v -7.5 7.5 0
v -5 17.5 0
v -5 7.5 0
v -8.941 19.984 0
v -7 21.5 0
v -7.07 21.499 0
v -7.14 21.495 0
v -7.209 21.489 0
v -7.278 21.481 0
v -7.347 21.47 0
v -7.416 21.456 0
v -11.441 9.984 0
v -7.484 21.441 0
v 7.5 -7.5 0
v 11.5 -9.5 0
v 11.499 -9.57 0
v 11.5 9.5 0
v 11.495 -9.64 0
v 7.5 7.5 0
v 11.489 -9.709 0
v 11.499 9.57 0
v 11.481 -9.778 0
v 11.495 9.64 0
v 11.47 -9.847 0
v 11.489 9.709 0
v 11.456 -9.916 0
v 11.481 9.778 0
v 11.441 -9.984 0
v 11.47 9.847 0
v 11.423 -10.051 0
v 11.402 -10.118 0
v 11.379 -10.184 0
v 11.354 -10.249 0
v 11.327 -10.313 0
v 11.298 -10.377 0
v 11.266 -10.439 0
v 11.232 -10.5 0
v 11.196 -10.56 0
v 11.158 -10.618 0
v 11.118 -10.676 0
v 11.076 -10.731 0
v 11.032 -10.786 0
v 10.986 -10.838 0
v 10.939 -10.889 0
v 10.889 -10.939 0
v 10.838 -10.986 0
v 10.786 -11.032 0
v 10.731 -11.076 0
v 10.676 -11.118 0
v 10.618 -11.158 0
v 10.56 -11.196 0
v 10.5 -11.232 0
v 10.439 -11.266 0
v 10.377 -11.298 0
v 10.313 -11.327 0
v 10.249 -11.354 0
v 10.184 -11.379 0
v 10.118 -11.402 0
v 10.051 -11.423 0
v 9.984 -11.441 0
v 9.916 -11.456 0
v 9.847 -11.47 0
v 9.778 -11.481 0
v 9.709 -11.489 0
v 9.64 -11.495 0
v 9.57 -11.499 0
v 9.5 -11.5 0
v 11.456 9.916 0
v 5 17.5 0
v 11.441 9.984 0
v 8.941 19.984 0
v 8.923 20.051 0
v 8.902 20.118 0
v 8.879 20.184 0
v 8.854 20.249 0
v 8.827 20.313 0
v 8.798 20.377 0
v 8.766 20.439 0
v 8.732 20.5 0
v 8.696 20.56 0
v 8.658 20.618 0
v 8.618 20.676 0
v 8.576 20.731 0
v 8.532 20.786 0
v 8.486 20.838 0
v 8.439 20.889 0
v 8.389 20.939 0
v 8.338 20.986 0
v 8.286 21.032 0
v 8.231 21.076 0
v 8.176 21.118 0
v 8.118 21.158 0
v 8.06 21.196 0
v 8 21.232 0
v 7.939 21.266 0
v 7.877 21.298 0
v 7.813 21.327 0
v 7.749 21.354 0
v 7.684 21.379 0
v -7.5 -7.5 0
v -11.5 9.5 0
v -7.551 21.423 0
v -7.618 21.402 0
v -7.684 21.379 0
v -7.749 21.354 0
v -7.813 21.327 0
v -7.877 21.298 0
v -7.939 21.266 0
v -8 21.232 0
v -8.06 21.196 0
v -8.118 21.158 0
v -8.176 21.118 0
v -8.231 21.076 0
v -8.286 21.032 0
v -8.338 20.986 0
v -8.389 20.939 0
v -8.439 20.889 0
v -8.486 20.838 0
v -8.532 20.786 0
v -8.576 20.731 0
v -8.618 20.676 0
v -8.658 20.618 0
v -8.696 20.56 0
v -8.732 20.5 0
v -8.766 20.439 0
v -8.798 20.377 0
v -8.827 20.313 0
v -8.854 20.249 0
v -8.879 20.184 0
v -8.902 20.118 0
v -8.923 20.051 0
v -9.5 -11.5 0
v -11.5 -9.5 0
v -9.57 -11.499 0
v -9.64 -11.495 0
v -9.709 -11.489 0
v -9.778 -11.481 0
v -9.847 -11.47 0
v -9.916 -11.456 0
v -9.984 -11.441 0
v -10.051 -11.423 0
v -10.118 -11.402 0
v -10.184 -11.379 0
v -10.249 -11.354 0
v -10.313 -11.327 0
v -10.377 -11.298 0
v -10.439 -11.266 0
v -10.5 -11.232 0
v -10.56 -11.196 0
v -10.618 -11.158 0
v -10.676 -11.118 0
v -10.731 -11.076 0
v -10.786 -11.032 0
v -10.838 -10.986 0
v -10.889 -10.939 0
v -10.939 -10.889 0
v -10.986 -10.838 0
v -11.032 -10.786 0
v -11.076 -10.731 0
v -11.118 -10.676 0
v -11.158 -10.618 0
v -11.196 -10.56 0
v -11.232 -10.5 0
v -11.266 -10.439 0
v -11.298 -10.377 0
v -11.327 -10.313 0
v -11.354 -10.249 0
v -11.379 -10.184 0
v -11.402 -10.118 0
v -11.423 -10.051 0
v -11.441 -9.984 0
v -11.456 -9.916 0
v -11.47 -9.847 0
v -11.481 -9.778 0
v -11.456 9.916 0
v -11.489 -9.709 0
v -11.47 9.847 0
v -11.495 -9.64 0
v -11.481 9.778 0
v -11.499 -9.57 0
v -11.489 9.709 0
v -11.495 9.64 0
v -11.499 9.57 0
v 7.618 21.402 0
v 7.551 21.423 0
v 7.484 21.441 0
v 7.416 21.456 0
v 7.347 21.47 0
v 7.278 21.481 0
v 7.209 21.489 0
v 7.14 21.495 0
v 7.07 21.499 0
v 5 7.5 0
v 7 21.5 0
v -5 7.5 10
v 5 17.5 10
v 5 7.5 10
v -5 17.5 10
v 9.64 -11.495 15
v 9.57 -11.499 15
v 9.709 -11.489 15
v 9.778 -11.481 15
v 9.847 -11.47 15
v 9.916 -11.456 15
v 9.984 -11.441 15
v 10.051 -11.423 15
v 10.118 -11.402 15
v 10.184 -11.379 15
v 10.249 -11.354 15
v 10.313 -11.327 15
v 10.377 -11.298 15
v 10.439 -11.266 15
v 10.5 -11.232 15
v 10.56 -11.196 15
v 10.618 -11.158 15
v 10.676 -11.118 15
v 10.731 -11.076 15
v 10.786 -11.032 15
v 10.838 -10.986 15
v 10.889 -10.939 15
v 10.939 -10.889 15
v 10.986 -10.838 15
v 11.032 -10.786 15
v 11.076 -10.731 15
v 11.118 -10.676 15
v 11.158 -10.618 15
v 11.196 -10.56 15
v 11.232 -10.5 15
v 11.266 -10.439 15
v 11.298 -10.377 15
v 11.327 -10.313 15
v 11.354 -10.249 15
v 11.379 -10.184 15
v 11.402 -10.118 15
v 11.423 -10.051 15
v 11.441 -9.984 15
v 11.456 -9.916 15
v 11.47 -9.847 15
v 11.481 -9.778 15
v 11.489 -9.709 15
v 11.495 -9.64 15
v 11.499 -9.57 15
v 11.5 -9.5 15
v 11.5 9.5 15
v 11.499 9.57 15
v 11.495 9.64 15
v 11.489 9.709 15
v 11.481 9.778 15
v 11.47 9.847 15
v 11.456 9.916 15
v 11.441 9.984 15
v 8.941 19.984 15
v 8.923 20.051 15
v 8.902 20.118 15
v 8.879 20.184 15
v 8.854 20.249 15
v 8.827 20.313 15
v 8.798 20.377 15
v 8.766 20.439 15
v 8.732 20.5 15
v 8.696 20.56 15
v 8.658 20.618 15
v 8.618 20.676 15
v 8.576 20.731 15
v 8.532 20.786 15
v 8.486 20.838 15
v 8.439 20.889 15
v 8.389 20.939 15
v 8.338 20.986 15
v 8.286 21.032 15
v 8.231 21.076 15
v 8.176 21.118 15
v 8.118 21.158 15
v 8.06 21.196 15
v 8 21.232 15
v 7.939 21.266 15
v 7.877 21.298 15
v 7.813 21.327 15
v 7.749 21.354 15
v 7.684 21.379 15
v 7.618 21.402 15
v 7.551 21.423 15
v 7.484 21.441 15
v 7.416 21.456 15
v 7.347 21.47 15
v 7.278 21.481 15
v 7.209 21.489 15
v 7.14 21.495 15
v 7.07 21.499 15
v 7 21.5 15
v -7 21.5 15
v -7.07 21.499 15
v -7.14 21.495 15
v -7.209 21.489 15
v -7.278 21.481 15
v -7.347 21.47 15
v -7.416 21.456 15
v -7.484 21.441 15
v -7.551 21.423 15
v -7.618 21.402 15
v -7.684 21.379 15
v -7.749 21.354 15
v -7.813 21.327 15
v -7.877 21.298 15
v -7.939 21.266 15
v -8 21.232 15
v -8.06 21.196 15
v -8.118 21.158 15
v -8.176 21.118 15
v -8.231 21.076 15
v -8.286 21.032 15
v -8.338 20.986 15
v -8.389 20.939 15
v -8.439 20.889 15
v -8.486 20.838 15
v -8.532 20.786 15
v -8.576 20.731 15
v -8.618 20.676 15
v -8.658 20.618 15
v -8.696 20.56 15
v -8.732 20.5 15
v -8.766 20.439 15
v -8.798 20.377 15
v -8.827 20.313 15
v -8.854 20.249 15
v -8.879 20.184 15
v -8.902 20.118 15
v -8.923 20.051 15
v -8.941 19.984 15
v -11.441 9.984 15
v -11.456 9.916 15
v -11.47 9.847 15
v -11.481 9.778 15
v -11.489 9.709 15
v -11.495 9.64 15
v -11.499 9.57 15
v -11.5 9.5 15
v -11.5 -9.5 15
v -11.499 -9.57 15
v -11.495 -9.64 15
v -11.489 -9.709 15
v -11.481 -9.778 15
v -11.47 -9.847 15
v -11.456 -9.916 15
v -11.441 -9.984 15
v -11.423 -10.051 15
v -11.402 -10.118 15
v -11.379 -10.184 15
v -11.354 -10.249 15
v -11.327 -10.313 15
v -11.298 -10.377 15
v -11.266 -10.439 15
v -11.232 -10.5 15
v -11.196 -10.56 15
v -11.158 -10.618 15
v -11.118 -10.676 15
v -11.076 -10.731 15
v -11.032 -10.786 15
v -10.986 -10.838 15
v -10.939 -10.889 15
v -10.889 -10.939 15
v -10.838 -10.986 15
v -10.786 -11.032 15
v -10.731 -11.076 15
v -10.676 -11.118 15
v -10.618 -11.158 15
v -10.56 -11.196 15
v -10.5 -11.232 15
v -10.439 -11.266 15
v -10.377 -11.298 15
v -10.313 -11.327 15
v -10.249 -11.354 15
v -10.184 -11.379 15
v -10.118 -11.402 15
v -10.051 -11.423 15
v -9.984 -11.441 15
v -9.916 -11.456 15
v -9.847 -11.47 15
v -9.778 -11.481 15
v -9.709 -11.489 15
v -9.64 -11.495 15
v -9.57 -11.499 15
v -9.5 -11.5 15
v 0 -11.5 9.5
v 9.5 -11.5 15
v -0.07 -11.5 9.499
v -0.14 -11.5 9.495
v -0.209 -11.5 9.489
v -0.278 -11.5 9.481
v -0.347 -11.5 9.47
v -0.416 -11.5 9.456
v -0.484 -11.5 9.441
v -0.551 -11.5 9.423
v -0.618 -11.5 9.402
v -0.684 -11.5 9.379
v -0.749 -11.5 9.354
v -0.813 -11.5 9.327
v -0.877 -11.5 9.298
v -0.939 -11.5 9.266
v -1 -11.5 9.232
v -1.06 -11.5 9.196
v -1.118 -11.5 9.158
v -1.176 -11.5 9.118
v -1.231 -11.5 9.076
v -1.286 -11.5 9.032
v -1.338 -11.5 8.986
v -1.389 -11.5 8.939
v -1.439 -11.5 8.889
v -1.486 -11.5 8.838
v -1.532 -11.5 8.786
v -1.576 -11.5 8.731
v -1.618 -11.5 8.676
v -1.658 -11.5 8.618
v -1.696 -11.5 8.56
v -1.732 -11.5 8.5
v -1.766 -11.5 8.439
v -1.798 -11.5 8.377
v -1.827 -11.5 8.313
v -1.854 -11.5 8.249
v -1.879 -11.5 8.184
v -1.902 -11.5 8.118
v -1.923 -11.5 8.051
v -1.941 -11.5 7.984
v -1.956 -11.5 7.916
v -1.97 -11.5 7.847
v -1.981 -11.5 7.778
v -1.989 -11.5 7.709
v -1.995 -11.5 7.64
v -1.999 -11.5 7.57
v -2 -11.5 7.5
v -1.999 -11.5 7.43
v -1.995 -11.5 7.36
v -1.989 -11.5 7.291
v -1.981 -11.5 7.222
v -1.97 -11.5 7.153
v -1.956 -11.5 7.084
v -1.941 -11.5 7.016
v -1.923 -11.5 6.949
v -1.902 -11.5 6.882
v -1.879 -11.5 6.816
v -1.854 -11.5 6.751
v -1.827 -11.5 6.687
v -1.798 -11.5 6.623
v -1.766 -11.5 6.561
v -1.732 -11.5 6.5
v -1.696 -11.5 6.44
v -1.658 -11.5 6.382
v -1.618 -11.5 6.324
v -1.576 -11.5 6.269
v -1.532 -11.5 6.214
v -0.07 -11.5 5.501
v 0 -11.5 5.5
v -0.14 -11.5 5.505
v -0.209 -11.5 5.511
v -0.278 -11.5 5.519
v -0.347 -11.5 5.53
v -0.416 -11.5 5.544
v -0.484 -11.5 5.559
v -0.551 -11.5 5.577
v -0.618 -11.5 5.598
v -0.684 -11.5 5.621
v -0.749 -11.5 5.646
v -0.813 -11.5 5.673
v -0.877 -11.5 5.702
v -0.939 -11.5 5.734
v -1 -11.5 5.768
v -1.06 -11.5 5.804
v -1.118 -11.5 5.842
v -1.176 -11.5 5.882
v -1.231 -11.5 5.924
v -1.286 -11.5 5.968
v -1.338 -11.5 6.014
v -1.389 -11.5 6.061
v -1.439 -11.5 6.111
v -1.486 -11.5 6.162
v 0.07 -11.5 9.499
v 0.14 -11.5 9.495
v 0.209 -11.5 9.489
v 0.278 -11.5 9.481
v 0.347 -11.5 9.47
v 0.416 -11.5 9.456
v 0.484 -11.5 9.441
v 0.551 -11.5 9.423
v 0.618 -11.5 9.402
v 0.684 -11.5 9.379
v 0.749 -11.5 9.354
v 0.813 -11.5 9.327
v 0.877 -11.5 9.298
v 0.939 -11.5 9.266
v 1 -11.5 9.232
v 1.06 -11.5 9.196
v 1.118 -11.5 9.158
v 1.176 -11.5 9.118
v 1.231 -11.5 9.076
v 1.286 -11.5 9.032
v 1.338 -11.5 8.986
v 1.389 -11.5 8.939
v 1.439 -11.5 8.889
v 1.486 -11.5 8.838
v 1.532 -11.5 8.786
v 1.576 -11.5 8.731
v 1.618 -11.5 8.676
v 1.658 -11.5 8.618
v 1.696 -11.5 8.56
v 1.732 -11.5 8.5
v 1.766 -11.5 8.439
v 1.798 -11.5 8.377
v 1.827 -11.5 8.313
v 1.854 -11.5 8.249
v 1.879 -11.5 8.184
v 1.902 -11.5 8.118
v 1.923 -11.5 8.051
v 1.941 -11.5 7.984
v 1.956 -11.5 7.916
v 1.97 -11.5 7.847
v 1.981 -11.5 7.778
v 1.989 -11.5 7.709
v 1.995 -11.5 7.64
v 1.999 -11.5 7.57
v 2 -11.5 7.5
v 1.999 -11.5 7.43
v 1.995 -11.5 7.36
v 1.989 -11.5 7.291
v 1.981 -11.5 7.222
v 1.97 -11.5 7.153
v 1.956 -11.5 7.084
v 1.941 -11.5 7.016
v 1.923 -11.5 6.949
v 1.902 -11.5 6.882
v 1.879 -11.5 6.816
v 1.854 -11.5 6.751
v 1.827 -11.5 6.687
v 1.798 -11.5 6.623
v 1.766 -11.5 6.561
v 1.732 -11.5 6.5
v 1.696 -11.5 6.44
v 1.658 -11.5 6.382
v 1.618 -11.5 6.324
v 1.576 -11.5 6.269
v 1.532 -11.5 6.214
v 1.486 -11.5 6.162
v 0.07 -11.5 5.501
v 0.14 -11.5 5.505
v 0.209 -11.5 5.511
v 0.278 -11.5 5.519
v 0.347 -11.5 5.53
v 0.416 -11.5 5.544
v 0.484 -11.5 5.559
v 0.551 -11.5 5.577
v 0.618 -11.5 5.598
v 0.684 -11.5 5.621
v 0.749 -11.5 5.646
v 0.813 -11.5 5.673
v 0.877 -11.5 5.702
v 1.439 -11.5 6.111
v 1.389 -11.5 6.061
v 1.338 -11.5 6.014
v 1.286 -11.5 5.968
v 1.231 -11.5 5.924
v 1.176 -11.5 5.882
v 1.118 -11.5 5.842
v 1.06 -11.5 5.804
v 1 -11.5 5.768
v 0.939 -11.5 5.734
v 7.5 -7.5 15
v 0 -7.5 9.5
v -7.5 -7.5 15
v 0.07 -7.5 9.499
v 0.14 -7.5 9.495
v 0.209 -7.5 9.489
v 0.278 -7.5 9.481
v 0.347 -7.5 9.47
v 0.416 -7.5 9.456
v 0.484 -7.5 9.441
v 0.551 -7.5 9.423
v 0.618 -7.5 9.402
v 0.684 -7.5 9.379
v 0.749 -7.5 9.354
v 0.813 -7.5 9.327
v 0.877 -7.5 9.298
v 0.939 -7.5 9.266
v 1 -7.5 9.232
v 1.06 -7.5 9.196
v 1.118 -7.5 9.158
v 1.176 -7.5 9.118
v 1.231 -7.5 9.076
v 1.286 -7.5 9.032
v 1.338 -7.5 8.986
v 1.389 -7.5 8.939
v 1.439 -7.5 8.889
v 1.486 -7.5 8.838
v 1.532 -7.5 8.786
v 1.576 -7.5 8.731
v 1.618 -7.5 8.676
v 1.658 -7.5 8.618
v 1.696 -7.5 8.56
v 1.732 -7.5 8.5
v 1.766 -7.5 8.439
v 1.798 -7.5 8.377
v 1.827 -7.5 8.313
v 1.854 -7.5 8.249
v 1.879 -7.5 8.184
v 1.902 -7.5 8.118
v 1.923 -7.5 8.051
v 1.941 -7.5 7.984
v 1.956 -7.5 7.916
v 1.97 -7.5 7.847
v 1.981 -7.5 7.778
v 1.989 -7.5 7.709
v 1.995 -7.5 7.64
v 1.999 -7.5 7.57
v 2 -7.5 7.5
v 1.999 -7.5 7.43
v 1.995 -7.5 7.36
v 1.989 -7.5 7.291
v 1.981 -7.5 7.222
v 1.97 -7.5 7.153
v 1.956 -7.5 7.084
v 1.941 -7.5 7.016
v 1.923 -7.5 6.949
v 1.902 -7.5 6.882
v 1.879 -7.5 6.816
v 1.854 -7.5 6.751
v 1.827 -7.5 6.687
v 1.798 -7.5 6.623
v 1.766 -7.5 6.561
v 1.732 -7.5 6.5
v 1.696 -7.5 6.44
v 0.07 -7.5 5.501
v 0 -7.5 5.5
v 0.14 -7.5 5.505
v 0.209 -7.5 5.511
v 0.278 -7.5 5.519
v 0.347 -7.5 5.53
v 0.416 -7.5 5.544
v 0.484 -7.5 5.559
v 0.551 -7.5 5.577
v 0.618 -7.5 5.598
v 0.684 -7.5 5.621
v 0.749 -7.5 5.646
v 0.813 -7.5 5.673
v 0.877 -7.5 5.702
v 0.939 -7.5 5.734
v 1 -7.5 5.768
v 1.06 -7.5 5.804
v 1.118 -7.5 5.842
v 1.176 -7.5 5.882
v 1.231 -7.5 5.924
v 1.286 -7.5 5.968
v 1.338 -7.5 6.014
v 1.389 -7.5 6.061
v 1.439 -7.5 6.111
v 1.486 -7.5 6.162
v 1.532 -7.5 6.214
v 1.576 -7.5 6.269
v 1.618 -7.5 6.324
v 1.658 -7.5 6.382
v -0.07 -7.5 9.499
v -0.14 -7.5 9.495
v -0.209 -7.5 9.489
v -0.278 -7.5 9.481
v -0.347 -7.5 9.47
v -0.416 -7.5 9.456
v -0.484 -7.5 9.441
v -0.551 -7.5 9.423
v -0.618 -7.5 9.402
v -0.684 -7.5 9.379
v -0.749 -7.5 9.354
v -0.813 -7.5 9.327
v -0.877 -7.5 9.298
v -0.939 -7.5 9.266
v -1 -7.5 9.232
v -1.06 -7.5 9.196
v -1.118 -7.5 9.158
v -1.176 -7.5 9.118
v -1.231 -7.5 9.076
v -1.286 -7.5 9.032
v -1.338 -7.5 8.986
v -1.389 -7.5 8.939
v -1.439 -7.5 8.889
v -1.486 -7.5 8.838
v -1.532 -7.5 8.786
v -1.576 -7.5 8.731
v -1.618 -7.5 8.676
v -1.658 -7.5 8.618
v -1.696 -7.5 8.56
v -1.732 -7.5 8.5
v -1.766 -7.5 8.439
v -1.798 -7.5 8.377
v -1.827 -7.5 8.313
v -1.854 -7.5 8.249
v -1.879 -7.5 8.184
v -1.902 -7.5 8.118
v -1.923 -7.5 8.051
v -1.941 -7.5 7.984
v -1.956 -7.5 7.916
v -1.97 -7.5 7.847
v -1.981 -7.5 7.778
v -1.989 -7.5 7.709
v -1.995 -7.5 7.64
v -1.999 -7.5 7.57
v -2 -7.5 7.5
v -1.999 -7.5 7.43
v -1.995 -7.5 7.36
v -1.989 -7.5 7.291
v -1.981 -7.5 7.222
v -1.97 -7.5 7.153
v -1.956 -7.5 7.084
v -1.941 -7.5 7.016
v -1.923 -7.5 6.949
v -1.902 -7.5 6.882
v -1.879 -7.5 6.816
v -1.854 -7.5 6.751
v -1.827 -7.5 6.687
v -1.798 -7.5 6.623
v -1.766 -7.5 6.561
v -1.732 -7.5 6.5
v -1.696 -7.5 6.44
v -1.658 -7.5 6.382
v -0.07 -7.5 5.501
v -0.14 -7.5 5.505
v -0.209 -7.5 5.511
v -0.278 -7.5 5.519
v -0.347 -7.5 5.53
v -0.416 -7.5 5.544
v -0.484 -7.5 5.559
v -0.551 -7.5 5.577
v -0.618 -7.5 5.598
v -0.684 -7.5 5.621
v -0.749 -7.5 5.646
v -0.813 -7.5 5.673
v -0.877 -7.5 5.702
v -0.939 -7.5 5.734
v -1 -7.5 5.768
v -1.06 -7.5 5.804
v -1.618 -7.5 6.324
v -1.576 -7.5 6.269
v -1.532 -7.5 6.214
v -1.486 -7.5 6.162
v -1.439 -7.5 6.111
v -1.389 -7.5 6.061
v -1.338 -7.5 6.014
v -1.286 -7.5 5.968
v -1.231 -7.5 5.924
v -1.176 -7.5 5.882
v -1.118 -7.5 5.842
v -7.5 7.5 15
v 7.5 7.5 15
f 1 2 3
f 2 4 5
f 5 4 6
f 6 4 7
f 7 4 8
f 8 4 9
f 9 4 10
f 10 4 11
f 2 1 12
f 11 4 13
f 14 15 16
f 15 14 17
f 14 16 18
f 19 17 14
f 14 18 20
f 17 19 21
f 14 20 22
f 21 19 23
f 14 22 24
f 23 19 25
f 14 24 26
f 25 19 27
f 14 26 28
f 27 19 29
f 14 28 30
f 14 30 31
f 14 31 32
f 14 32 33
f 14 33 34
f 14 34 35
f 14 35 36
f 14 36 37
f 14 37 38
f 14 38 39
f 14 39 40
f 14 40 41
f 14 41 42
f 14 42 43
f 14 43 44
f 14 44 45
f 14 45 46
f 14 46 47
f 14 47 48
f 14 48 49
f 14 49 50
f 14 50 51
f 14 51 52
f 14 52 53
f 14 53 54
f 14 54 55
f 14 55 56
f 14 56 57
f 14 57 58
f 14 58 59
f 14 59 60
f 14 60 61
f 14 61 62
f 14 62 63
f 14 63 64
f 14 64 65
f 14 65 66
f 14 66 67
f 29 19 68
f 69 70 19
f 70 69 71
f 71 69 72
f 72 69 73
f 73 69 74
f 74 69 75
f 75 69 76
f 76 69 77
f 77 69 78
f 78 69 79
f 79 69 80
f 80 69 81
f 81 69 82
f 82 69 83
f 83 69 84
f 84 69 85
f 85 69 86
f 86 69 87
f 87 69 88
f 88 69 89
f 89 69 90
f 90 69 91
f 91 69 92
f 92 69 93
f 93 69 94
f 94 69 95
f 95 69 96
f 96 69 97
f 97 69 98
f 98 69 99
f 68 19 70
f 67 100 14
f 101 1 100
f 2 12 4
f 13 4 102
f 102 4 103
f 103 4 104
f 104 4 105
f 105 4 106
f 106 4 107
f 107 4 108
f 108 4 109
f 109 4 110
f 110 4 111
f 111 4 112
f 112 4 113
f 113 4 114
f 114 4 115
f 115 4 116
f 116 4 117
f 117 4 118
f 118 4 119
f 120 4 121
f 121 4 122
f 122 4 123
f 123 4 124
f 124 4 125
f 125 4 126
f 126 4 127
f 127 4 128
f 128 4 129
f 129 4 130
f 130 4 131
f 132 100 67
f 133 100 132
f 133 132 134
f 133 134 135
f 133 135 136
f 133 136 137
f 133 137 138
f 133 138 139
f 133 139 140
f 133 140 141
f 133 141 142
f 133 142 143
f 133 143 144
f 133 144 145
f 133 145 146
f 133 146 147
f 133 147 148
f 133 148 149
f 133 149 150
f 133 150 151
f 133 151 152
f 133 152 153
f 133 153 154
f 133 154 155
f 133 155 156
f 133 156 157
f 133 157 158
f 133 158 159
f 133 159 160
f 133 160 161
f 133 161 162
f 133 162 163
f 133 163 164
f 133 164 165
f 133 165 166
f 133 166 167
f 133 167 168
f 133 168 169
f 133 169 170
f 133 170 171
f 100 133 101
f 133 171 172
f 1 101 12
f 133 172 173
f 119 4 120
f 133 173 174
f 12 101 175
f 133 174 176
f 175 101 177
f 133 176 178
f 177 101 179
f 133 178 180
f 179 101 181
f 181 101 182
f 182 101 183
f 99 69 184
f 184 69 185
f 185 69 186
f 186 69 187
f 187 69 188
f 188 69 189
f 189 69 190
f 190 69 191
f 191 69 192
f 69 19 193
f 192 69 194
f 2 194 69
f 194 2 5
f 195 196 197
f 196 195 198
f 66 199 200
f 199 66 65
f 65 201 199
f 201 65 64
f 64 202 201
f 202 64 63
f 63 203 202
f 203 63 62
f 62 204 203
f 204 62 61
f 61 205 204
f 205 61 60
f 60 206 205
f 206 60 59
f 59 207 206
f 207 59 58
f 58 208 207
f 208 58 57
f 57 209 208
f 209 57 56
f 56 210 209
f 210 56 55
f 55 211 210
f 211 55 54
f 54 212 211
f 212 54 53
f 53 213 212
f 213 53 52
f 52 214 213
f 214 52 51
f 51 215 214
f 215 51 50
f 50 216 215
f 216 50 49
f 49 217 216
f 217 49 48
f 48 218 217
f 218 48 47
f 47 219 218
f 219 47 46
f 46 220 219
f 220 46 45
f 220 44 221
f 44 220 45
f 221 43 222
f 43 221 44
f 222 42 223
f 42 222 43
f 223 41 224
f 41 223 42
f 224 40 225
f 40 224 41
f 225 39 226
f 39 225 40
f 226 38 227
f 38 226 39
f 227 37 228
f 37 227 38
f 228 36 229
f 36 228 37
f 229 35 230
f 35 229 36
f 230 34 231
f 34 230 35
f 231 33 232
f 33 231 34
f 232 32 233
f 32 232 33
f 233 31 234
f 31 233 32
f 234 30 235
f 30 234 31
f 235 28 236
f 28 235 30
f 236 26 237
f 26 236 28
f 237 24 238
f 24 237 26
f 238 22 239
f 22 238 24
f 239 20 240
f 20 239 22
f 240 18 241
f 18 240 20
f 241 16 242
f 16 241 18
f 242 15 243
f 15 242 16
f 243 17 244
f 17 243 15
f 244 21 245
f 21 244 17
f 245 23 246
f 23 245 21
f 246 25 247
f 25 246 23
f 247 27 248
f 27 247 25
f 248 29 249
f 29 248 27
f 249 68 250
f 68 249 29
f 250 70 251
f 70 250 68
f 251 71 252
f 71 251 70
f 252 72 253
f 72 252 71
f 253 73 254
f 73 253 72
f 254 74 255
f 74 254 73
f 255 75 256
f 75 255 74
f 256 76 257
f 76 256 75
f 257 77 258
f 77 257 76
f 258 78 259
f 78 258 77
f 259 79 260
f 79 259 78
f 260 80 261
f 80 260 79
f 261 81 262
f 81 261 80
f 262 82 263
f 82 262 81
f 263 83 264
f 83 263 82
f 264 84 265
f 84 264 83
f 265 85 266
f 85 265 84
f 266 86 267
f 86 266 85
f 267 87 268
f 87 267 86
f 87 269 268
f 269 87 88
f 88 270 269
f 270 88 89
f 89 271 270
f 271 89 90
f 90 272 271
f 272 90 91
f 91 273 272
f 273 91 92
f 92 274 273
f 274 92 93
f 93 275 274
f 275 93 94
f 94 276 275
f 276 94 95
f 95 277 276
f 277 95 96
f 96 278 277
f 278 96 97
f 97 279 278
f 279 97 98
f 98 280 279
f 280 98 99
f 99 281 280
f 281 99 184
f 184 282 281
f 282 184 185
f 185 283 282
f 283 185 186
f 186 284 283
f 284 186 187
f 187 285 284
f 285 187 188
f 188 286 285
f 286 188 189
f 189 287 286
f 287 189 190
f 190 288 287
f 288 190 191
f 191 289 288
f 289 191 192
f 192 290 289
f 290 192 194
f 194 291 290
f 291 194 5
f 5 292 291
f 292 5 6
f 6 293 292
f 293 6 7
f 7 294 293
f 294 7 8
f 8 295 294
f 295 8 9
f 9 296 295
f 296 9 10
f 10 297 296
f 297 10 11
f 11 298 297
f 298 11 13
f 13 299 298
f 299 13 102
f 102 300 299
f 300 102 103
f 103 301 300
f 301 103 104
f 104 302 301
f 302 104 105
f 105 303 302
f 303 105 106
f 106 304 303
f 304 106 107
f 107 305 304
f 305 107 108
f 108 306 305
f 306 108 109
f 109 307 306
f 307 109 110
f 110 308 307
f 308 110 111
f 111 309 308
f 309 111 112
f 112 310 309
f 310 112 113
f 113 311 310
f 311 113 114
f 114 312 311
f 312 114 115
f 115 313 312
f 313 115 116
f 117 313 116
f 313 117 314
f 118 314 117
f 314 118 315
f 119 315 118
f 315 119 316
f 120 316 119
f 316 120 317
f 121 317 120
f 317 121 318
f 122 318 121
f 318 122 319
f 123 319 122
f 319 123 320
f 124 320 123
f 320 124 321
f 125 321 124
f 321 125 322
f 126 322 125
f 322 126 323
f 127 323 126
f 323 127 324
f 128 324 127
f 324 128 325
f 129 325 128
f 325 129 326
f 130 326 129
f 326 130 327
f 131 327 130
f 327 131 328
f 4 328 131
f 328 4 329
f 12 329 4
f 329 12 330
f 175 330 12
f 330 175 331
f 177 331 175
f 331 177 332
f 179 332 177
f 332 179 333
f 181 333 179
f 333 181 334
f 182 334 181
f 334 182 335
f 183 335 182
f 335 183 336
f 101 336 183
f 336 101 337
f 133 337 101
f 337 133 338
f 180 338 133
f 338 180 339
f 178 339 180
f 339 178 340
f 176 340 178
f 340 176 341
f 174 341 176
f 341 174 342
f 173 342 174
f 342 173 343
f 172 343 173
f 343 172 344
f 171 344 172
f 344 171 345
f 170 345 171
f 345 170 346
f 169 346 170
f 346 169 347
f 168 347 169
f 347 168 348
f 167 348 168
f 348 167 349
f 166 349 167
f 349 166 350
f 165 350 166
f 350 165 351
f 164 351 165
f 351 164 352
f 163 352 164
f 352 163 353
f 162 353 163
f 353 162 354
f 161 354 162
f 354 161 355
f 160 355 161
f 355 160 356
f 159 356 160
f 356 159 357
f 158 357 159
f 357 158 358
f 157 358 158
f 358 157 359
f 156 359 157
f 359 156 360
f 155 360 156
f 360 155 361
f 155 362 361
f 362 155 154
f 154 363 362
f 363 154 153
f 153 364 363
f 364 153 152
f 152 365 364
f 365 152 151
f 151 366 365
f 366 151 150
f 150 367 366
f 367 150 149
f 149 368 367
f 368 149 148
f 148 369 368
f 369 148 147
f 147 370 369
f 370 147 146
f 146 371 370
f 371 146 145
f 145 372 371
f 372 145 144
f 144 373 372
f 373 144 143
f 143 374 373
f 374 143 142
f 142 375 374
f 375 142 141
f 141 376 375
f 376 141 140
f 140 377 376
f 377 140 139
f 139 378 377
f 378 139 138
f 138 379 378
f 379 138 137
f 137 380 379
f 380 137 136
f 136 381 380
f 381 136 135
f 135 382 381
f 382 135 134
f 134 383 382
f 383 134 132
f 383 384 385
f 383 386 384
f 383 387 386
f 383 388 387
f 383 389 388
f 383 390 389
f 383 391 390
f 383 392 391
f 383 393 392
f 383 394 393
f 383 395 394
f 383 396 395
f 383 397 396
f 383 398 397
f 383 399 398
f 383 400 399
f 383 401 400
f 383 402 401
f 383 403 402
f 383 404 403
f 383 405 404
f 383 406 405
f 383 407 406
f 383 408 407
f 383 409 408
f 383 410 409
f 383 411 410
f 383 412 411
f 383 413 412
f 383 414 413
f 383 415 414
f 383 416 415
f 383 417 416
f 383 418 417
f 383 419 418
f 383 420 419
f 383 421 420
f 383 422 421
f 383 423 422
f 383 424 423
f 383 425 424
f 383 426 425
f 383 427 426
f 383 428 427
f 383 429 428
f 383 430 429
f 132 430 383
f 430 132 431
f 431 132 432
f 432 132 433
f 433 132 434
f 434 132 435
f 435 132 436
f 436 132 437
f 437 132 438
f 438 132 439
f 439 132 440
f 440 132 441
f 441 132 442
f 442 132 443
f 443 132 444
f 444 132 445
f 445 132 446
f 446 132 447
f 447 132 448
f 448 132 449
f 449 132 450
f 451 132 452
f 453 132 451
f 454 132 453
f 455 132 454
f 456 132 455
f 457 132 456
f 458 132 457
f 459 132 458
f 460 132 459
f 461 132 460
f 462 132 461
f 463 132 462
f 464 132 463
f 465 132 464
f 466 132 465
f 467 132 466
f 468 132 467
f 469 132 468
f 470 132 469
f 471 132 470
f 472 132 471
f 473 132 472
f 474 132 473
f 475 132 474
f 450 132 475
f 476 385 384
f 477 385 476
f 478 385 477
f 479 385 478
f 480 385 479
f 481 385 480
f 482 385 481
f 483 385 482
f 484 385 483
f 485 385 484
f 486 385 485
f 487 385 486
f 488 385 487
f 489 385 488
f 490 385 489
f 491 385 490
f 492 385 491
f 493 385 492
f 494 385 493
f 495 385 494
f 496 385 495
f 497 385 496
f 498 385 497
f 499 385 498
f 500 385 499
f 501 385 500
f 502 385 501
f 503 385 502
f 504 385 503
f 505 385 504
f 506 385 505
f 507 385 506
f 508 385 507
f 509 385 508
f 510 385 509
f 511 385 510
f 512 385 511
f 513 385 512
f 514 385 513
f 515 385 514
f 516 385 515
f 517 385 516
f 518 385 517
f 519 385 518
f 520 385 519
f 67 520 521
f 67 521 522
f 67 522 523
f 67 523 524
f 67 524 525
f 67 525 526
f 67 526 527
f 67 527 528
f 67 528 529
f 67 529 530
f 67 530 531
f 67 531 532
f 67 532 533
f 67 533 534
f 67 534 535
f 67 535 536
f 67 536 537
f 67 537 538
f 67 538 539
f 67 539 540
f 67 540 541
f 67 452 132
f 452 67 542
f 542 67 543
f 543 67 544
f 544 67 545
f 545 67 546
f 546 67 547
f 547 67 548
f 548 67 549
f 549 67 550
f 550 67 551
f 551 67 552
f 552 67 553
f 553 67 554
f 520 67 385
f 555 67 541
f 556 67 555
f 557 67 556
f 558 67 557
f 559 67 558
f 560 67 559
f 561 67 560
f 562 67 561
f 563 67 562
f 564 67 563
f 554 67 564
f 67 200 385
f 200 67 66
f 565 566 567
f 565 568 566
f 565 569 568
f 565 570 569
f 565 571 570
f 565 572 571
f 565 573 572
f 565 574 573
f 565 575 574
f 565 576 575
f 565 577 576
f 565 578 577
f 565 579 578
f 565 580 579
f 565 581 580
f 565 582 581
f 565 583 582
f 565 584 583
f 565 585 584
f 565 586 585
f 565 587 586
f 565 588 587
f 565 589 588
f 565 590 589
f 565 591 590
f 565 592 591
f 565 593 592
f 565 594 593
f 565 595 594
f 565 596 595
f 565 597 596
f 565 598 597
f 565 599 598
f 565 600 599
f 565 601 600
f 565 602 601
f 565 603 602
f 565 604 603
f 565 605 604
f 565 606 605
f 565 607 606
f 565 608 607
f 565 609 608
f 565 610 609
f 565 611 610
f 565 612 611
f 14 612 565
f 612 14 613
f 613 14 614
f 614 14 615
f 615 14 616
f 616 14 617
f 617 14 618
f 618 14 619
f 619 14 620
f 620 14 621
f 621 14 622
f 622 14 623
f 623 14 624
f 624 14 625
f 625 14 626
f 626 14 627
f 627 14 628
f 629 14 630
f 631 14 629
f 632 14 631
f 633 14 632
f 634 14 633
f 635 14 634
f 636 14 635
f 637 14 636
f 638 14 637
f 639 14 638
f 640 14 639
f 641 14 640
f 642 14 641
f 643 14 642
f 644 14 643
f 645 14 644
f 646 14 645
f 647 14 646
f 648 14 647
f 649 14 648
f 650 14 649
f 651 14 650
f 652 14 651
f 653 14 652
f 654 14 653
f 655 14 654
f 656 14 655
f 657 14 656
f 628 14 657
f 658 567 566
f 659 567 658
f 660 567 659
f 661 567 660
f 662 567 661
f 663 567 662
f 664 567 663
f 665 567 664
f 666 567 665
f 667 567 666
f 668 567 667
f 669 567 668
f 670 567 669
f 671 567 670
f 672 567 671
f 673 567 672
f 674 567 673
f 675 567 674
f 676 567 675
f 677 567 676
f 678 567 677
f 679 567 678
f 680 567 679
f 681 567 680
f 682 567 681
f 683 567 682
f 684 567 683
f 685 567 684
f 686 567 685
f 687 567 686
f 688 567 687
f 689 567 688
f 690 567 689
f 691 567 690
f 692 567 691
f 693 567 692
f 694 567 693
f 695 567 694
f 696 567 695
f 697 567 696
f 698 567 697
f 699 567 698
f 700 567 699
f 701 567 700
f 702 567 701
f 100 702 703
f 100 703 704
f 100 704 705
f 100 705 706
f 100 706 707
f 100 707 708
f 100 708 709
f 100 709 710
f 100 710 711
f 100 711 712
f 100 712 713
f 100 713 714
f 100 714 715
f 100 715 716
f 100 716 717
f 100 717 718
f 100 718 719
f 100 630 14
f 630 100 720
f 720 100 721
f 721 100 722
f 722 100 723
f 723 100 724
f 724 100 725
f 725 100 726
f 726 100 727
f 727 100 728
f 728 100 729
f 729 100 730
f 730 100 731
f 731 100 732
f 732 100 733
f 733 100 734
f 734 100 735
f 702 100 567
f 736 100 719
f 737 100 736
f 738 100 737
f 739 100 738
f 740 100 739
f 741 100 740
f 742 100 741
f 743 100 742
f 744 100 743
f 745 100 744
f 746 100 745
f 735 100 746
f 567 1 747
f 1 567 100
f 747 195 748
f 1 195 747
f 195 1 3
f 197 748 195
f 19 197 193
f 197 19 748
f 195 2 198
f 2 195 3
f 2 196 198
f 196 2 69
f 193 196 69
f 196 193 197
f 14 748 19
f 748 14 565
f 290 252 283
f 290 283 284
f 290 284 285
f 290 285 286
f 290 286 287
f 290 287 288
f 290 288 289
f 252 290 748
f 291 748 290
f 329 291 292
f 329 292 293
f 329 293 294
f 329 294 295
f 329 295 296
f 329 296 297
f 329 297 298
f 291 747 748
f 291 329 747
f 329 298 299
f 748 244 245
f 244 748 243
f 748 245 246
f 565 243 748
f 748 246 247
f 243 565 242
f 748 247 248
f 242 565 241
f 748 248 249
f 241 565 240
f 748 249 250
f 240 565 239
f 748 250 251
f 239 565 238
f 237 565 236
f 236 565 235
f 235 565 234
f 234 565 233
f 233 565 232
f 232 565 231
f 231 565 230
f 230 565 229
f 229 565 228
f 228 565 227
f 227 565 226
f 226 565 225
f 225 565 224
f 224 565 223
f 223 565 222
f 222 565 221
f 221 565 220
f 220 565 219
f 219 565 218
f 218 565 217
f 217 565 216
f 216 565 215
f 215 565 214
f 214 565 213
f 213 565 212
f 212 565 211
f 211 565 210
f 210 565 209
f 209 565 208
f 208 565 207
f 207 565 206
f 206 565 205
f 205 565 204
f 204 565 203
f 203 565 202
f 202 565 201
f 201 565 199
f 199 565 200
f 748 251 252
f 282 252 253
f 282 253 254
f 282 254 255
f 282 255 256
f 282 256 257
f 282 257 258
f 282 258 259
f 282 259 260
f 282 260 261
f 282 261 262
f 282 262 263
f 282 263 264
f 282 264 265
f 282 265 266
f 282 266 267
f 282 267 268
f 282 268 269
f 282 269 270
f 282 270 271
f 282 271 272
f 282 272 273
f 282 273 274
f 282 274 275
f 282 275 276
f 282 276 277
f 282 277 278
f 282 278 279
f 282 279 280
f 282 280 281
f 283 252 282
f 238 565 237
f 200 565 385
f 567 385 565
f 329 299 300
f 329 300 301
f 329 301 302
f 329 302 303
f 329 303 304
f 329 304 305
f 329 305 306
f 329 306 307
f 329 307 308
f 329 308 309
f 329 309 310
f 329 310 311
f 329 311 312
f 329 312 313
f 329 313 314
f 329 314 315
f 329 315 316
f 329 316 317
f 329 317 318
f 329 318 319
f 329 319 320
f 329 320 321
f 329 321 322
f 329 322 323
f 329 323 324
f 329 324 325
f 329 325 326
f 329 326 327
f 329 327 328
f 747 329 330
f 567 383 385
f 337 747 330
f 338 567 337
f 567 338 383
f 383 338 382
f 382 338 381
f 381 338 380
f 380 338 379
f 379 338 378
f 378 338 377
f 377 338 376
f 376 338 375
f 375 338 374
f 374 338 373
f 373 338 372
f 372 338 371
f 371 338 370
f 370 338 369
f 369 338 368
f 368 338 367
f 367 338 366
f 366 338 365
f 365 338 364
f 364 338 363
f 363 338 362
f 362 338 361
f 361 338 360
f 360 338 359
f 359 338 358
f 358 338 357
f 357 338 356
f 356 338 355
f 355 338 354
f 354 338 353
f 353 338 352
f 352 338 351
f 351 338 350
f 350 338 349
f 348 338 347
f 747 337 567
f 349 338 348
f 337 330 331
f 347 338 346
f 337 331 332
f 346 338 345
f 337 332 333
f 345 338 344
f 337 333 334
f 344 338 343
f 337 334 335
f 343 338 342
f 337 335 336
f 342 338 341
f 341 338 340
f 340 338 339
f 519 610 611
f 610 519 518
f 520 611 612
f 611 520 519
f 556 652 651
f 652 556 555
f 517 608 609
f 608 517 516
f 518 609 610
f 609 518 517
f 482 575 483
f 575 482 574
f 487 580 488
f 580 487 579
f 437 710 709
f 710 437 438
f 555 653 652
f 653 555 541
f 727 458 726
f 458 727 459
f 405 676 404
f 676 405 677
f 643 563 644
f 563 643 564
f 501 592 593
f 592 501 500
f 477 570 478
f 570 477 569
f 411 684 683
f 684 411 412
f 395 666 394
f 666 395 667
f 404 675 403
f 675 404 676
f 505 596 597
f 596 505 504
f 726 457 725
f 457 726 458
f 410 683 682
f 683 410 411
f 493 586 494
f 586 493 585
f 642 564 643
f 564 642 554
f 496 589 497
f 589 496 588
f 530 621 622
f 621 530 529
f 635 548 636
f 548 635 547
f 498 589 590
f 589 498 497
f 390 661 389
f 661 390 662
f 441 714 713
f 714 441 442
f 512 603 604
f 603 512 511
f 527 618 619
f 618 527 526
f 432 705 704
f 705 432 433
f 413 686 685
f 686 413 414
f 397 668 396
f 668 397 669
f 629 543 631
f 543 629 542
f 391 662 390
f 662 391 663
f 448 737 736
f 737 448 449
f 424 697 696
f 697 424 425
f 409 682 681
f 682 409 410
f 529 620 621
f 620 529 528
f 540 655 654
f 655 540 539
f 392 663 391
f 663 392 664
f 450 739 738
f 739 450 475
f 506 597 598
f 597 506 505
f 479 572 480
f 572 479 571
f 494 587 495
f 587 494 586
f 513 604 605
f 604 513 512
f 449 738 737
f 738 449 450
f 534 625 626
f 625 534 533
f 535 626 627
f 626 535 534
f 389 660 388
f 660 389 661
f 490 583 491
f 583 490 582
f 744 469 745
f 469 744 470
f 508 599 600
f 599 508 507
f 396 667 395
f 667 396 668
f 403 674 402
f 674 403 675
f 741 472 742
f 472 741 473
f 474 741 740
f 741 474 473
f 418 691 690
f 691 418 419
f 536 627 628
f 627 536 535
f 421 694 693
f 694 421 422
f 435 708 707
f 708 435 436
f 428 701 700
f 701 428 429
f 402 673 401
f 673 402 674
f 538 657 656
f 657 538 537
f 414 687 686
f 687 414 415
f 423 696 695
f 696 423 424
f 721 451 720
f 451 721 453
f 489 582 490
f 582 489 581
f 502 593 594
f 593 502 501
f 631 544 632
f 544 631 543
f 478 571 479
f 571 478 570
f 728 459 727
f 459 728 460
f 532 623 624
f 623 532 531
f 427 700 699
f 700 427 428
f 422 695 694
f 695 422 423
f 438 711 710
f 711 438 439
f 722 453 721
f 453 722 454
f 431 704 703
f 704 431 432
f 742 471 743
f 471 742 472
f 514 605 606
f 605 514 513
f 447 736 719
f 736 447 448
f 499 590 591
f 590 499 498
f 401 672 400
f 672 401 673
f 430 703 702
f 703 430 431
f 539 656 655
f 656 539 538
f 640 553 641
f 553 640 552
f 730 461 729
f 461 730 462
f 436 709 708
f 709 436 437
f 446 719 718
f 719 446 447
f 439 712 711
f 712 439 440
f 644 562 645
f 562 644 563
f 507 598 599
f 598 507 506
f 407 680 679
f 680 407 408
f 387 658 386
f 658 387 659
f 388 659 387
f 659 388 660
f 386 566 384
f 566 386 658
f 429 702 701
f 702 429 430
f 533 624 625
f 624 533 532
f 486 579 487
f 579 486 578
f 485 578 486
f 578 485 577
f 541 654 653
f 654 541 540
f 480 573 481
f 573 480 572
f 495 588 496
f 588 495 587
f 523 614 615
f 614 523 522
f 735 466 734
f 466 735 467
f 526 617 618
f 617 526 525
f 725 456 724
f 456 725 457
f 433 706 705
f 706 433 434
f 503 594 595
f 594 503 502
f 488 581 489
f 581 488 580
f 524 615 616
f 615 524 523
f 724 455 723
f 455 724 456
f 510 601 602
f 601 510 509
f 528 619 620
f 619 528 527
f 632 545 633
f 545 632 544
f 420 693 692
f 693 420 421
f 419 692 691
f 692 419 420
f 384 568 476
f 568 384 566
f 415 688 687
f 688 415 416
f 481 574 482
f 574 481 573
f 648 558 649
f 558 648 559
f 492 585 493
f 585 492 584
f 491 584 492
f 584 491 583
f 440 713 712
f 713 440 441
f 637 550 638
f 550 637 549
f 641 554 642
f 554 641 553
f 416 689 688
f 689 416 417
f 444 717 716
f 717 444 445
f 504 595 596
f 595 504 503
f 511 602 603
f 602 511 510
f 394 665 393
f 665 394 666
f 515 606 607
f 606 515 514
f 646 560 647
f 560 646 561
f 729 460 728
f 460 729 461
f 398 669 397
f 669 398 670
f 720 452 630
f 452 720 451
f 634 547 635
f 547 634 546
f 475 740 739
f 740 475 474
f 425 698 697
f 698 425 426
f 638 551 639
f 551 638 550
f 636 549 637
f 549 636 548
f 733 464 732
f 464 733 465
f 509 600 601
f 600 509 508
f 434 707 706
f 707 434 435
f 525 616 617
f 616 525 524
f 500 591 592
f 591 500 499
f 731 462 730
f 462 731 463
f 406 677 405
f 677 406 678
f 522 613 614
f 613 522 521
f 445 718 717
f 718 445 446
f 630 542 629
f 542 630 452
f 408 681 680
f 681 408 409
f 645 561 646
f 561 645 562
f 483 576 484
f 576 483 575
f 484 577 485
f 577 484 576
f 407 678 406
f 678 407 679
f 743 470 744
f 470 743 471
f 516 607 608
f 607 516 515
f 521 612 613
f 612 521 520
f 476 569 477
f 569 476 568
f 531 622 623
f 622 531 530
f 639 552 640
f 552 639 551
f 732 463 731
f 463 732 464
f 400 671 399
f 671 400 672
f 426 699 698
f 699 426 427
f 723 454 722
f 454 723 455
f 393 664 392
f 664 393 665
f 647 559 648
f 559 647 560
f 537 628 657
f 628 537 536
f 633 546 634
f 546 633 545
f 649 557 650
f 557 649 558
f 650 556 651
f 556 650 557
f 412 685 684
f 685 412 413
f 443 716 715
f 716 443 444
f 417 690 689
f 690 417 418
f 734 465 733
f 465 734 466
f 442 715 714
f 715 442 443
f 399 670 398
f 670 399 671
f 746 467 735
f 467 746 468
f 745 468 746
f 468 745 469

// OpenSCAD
$fn=180;

difference(){
union(){
linear_extrude(10)
difference(){
  hull(){
    offset(2) square(15+4, center=true);
      translate([0,15/2+5]) offset(2) square(10+4, center=true);
  }
  square(15, center=true); 
  translate([0,15/2+5]) square(10, center=true);
}


translate([0,0,10]) linear_extrude(5)
difference(){
  hull(){
    offset(2) square(15+4, center=true);
      translate([0,15/2+5]) offset(2) square(10+4, center=true);
  }
  square(15, center=true); 
}
}
translate([0,0,7.5]) rotate([90,0]) cylinder(d=4,h=50);
}
